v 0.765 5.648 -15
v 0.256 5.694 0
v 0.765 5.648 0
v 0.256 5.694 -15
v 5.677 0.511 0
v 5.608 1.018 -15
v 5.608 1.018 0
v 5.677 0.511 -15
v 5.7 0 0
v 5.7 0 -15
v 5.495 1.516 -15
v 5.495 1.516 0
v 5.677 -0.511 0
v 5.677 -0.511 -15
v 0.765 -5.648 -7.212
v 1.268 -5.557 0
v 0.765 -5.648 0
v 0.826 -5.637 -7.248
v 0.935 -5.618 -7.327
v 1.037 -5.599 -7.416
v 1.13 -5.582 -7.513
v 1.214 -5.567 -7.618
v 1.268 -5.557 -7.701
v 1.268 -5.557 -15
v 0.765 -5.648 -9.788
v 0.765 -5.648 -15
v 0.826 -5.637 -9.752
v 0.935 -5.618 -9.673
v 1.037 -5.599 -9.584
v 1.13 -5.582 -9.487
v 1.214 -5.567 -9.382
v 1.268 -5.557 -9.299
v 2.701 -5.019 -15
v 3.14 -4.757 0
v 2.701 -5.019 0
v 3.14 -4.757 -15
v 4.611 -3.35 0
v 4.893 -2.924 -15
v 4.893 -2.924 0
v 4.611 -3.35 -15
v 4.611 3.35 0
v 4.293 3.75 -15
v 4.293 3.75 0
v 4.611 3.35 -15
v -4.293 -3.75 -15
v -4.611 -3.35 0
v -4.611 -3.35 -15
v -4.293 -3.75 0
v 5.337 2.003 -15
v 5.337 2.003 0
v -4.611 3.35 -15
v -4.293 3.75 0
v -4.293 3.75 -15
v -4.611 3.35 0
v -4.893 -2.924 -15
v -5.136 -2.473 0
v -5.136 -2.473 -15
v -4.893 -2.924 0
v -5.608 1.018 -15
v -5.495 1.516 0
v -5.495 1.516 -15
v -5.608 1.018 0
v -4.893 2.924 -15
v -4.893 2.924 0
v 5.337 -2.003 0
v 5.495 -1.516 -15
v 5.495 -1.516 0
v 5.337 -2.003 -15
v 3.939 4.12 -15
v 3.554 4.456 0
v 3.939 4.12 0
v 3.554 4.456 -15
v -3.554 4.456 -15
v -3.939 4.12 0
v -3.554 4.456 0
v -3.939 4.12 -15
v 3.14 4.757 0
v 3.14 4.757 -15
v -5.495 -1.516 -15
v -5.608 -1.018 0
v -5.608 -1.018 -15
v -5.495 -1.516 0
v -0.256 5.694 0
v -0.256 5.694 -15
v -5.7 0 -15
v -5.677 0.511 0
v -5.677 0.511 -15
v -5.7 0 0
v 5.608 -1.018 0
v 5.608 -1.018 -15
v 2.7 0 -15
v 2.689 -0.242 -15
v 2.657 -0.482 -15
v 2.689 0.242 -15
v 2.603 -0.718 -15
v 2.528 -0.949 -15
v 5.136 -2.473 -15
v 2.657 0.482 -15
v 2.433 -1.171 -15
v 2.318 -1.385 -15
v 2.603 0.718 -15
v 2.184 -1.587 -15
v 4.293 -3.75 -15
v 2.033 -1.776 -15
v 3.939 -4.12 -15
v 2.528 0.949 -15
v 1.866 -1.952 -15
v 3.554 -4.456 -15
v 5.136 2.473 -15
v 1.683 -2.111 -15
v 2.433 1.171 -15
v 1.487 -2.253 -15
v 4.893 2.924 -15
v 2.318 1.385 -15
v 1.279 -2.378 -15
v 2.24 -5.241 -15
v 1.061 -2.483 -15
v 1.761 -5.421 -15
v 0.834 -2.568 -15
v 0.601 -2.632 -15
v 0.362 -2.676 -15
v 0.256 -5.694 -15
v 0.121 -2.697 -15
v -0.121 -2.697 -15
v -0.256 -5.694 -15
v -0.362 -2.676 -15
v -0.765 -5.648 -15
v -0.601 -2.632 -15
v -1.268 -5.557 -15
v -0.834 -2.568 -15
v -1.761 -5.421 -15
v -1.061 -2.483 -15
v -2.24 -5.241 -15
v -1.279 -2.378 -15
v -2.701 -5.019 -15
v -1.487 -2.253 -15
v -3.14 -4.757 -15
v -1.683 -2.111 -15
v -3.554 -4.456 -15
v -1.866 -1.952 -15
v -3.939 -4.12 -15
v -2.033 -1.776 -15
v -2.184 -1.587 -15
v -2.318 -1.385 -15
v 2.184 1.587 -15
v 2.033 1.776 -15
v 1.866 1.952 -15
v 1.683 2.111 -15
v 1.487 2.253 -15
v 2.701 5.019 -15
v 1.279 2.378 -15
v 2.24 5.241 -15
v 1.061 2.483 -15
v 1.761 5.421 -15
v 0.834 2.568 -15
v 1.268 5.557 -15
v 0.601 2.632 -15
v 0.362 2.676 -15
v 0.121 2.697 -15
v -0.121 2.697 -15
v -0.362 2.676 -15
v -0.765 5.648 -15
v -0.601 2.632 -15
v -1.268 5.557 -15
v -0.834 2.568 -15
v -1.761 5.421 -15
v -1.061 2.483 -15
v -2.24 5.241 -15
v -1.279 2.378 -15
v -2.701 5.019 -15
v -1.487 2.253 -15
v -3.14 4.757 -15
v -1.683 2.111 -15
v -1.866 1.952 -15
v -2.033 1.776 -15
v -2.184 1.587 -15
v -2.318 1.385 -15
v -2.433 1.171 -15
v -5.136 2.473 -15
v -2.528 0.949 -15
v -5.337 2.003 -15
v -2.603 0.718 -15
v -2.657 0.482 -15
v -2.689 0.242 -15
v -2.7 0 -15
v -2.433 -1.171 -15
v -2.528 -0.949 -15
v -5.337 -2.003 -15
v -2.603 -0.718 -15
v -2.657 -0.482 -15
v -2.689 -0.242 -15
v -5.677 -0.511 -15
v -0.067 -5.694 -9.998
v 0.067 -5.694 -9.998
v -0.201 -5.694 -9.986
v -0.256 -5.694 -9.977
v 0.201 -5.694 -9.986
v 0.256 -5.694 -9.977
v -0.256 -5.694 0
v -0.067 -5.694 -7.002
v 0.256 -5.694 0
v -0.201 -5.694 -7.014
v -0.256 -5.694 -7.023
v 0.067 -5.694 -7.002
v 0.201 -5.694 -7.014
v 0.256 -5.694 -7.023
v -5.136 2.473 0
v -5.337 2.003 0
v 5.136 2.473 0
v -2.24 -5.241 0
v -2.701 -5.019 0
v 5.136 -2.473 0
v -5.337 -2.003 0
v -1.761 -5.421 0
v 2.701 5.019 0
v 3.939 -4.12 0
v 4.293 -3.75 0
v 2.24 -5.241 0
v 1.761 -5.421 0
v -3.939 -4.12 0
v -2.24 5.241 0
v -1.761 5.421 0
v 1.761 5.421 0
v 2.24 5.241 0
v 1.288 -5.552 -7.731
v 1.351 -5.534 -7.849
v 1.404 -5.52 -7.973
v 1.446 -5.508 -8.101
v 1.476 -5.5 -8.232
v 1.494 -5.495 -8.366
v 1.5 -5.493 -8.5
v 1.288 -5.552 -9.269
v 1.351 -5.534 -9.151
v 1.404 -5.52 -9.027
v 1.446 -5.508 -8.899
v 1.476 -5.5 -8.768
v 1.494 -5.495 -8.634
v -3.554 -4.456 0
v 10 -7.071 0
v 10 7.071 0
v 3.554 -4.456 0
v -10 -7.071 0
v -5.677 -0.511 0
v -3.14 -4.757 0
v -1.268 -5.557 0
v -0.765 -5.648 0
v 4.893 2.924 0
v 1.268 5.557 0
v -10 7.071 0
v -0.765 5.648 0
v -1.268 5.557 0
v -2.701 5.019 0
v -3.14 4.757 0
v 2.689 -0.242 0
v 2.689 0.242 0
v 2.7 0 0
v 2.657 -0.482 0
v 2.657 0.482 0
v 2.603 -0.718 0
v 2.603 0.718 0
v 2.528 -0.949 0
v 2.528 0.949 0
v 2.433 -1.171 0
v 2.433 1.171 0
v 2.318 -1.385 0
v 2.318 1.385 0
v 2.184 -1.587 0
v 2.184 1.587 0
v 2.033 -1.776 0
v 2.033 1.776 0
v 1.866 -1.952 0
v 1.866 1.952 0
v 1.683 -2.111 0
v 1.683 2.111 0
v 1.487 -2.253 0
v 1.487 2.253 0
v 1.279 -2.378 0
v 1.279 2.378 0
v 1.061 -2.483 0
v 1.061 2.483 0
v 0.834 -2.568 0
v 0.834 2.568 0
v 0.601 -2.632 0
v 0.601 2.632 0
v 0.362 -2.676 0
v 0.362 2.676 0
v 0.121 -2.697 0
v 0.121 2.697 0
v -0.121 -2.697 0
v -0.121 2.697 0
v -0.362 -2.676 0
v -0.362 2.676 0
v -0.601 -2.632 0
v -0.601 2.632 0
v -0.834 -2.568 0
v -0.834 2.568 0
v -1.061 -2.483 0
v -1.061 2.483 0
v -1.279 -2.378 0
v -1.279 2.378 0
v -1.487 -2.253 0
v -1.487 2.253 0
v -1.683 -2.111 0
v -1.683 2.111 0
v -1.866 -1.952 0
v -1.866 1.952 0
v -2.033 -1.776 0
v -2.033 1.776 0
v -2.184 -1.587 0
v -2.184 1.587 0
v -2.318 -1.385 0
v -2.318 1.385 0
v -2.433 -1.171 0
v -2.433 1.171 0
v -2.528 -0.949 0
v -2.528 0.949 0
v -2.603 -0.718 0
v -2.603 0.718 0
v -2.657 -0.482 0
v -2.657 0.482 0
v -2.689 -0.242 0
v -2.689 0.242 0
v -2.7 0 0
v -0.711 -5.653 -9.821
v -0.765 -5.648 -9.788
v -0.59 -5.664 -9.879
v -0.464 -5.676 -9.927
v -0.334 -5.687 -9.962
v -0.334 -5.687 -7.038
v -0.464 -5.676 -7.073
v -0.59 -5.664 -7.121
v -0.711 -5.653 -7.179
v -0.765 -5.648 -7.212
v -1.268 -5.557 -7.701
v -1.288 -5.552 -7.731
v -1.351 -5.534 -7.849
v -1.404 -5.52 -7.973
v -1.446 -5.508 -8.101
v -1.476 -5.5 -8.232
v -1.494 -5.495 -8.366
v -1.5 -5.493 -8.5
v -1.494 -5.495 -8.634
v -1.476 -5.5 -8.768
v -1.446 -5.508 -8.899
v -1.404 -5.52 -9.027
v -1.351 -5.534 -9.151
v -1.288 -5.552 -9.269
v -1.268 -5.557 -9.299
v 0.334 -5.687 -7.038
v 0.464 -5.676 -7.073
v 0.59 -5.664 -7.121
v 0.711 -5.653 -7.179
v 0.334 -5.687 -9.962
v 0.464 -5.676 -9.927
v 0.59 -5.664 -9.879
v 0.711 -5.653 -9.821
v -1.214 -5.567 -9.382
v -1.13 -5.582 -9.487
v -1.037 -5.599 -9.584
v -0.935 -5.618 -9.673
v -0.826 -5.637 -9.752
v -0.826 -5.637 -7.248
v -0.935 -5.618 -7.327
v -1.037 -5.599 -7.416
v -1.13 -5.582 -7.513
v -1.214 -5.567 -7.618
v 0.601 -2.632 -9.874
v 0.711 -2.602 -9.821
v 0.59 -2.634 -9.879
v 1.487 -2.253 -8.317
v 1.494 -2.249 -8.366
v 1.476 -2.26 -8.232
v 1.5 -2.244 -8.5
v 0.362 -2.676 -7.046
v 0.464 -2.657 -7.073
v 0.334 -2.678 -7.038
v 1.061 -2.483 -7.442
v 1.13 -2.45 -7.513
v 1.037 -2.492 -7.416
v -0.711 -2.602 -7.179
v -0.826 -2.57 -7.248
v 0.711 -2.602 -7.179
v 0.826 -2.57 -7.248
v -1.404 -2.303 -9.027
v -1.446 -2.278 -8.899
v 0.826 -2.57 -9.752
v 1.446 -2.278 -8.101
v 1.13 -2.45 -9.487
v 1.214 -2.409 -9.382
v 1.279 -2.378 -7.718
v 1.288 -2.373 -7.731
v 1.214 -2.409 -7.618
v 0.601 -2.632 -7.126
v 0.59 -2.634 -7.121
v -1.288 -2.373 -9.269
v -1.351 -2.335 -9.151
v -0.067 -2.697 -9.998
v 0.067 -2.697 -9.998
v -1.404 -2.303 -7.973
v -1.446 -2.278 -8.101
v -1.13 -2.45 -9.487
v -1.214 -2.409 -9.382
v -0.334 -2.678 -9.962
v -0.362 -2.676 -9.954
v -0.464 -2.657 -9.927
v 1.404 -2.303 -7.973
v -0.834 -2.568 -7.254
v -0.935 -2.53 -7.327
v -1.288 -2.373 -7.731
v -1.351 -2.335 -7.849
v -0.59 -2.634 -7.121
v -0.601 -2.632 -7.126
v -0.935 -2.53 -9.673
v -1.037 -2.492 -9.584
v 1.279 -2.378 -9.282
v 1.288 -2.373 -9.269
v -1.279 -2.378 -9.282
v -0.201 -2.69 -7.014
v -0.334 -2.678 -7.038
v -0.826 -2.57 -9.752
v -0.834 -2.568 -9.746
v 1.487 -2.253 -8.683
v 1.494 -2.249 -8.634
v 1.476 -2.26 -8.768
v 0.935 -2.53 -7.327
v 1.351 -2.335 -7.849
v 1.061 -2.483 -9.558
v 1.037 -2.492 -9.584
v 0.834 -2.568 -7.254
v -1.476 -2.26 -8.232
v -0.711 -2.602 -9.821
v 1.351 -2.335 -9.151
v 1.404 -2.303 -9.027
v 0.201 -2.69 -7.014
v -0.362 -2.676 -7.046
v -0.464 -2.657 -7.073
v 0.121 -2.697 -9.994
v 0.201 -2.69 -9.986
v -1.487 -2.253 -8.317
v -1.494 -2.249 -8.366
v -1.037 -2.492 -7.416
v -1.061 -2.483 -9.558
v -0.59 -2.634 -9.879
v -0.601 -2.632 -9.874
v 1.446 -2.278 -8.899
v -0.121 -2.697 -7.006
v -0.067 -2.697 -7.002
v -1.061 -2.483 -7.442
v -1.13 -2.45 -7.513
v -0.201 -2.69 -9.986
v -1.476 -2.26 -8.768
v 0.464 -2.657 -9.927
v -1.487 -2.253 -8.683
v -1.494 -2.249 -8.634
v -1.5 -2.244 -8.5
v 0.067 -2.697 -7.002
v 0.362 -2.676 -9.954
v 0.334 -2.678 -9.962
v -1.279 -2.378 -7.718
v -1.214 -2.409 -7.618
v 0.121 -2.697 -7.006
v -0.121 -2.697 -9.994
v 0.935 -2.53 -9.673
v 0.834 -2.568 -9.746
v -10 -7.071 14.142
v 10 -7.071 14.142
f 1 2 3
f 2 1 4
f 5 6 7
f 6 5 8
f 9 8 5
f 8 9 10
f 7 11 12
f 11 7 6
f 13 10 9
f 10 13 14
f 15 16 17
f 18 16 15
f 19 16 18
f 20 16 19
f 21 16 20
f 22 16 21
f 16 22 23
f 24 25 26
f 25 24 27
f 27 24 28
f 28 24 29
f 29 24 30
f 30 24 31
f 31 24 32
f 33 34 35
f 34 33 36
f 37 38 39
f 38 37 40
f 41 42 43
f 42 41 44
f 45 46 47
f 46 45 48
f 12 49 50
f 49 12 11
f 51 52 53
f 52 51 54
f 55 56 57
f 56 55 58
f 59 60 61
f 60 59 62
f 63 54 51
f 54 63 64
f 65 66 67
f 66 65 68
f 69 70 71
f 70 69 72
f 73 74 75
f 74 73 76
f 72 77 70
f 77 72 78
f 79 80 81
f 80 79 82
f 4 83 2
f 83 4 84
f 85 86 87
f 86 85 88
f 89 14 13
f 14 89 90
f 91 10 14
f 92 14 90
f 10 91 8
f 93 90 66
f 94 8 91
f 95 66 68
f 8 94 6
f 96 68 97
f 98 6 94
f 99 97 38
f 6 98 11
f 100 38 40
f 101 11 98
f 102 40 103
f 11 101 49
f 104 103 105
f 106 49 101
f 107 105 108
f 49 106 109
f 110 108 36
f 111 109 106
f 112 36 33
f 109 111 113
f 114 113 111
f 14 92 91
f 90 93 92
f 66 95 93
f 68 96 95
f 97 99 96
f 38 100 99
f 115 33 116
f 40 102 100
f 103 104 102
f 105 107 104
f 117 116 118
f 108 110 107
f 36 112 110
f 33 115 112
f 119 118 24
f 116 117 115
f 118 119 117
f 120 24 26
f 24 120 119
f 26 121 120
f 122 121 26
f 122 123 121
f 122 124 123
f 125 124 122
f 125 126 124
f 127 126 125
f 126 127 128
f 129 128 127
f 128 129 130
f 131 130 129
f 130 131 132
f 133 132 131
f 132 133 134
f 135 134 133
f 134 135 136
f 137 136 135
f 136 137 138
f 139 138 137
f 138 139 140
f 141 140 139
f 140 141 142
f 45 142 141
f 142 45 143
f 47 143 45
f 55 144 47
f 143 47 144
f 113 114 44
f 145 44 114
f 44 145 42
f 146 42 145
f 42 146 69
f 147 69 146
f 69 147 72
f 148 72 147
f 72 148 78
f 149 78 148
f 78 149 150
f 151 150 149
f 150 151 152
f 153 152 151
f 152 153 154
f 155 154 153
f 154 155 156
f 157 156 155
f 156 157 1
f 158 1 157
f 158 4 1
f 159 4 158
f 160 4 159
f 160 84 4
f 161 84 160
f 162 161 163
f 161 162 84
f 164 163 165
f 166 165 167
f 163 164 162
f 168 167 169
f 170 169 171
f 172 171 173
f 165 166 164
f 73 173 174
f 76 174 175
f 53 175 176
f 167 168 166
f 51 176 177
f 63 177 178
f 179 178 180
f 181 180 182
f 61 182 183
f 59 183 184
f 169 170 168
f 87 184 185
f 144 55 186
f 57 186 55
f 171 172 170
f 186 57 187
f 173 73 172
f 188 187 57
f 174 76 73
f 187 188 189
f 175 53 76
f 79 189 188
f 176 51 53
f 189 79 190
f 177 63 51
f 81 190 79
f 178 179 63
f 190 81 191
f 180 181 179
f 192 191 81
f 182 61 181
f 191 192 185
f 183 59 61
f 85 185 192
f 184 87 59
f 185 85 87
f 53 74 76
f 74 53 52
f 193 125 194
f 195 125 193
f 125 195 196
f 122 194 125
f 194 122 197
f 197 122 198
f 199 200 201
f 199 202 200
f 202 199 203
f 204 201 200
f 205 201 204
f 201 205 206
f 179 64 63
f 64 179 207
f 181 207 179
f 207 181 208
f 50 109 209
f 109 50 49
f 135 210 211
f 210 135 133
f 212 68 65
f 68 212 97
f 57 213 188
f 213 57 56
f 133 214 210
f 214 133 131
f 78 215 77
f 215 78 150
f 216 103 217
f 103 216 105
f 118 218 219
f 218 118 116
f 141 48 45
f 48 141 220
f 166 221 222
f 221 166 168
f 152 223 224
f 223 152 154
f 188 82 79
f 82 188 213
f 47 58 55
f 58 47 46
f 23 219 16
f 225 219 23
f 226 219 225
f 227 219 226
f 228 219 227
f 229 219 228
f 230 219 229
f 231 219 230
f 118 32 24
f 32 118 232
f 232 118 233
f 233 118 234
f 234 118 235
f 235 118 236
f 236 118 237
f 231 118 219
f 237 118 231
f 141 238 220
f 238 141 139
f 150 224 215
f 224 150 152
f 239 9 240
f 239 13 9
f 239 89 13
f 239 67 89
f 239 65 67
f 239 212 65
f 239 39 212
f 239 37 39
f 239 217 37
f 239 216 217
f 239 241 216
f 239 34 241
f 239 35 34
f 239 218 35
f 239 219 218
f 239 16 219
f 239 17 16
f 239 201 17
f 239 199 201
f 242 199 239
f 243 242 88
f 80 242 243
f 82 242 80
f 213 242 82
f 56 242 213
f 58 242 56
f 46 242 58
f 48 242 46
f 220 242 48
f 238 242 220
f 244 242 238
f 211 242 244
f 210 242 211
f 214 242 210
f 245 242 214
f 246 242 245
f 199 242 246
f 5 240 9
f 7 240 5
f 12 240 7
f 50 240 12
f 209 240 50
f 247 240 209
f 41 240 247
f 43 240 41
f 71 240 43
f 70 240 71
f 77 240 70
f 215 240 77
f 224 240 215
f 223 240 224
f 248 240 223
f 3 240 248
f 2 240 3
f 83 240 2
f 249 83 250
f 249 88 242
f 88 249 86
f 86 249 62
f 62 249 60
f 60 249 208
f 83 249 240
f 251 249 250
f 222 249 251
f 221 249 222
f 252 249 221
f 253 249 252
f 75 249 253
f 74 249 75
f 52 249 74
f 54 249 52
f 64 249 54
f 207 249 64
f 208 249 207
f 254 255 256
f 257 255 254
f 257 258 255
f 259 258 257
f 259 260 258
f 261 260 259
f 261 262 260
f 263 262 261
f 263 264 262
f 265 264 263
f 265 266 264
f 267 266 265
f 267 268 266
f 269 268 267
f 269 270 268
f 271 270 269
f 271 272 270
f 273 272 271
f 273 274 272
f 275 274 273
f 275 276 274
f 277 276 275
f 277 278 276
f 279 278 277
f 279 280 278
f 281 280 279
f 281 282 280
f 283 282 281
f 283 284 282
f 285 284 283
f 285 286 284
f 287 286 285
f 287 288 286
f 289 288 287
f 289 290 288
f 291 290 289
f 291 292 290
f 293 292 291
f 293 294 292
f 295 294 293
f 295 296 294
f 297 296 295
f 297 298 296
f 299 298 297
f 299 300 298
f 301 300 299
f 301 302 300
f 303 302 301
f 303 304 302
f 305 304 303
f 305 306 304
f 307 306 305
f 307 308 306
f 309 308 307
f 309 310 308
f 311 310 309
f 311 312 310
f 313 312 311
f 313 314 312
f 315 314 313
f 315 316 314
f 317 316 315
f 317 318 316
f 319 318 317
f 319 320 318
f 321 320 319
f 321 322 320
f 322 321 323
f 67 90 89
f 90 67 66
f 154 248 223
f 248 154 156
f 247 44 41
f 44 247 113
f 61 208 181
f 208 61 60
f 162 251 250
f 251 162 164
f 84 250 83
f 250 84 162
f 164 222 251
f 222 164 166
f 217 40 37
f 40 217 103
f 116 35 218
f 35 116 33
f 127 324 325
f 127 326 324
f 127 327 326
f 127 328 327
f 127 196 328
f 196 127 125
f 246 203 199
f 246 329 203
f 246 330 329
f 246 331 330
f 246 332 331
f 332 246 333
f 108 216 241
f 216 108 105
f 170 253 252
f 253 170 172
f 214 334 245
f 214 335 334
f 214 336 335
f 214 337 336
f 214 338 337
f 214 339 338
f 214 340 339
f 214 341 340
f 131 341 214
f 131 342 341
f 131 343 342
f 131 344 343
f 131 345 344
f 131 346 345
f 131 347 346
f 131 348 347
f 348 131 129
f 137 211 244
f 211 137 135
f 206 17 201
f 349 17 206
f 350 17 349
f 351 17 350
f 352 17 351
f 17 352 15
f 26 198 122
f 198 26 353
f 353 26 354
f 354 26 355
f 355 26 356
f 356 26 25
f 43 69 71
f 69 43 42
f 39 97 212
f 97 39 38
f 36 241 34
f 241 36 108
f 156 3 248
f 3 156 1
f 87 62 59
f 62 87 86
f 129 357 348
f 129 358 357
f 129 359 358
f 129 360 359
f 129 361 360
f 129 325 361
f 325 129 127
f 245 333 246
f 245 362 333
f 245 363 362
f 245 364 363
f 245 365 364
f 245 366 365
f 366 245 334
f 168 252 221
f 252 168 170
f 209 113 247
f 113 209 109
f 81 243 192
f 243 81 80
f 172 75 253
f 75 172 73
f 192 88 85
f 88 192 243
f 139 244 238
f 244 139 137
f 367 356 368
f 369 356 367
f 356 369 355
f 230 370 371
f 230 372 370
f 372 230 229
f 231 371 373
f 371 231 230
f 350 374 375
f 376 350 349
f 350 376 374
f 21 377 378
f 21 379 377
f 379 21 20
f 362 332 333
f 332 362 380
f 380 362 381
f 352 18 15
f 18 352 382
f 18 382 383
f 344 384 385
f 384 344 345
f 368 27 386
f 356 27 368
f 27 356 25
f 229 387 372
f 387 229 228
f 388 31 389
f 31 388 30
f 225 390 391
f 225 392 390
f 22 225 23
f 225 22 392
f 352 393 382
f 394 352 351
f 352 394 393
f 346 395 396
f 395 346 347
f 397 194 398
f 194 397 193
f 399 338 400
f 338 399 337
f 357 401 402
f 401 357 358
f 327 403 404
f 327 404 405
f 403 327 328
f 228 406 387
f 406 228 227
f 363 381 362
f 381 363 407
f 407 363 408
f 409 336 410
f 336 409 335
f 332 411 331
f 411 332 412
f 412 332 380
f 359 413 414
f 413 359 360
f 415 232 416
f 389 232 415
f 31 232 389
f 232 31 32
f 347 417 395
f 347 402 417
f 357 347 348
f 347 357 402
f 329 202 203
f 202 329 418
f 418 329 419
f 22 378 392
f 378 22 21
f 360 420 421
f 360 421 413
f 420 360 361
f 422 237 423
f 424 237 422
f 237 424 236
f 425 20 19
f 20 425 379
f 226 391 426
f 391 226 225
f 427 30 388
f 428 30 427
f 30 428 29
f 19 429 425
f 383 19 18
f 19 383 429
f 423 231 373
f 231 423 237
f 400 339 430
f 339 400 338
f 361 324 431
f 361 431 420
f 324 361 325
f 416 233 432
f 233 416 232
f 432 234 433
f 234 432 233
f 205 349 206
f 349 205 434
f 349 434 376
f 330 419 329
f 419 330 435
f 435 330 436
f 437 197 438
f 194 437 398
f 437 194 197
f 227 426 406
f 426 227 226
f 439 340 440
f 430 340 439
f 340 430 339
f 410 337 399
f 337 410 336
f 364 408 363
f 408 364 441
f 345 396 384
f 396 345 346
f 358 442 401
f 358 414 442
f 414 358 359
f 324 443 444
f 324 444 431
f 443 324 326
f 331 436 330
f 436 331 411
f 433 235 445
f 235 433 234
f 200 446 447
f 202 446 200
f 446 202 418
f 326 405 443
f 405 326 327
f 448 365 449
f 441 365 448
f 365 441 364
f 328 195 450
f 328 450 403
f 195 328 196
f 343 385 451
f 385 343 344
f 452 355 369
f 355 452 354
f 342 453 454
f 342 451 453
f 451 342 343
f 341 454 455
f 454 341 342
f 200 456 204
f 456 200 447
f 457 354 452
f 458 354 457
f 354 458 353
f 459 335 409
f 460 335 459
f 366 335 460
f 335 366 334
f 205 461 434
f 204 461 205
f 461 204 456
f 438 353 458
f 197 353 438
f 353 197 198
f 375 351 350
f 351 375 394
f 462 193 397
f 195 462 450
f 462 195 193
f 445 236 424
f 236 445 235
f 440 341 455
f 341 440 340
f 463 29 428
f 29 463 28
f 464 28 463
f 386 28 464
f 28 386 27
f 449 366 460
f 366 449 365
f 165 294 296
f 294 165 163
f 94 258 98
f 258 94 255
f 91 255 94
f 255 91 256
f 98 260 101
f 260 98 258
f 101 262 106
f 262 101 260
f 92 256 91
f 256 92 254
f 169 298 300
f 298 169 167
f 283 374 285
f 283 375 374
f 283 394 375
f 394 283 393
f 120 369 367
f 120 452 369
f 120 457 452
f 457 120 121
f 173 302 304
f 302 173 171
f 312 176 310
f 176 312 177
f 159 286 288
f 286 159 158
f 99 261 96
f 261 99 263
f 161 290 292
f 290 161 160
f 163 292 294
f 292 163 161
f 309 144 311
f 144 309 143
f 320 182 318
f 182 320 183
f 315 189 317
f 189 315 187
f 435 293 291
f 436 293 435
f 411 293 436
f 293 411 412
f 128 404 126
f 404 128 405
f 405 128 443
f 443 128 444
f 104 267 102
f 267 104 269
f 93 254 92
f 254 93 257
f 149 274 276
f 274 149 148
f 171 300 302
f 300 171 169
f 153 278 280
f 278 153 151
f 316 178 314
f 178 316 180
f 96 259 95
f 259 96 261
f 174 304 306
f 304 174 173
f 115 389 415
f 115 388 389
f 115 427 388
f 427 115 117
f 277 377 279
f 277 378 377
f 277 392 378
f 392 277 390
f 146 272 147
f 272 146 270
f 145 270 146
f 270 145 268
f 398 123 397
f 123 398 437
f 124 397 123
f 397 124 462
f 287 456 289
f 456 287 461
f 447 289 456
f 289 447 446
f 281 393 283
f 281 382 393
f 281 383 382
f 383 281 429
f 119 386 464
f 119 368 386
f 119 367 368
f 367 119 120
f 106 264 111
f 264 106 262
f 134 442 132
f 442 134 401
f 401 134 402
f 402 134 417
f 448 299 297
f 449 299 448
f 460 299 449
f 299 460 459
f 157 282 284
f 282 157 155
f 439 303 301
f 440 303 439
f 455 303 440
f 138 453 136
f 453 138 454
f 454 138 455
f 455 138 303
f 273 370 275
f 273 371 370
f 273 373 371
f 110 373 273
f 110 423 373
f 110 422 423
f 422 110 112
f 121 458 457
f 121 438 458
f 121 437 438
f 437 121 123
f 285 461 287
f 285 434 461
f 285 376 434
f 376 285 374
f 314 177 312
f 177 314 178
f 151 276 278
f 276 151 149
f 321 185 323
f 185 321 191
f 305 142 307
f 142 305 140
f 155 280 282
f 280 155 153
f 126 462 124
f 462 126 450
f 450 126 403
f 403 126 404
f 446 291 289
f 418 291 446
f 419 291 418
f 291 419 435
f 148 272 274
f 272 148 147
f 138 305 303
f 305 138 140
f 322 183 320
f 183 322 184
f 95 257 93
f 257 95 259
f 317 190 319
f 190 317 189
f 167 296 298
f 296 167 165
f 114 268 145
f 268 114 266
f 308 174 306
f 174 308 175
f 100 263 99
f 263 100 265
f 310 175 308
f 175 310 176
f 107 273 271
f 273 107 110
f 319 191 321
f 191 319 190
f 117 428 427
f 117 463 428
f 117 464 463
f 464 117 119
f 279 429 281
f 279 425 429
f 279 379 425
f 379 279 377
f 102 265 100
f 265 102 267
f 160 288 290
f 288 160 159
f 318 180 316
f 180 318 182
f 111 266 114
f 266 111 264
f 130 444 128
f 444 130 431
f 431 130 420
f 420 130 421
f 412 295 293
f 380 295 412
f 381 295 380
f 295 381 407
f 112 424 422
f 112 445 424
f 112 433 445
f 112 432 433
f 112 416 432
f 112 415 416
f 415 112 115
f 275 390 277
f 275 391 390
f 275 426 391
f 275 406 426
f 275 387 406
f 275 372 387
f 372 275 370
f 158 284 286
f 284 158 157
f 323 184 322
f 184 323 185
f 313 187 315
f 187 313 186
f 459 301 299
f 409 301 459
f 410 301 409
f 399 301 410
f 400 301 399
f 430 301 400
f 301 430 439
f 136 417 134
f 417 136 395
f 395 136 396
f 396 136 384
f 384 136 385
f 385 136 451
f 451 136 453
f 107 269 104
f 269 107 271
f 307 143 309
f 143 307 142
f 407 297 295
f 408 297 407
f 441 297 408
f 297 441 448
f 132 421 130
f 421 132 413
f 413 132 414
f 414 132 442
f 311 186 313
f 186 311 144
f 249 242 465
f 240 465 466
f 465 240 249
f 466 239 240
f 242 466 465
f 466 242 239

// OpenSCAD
$fn=70;

diameter = 5;
height=15;
module shaft(tolerance)
{
    
    translate([0,0,-height/2])
    cylinder(h=height,d=diameter+tolerance,center=true);
}


module shaftSupport(tolerance)
{
    diameter_support=6;
    translate([0,0,-height/2])
    cylinder(h=height,d=diameter+diameter_support+tolerance,center=true);
}

module mirrorSupport(l=15)
{
points = [
    [0, 0, 0], // Point 1
    [0, l, 0], // Point 2
    [l, l, 0], // Point 3
    [l, 0, 0], // Point 4
    [0, l/2, sqrt(l*l/2)/sqrt(2) ], // Point 5
    [l, l/2, sqrt(l*l/2)/sqrt(2) ]  // Point 6
];
faces = [
    [3, 2, 1, 0],  // Base, normal upwards
    [0, 1, 4],     // Side triangle, normal outward
    [1, 2, 5, 4],  //  Side face, normal outward
    [2, 3, 5],     // Side triangle, normal outward
    [4, 5, 3, 0],  //  Side face, normal outward
];


translate([0,0,l/2/sqrt(2)])
rotate([135,0,0])
translate([-l/2,-l/2,0])
polyhedron(points, faces);
}

tolerance=0.4;

color("gray")
union()
{
    difference()
    {
        diameter_screw = 3;
        distance_to_border = 5;
        shaftSupport(tolerance);
        translate([0,-5,distance_to_border-height+diameter_screw/2])
        rotate([90,0,0])
        color("green")
        cylinder(h=7,d=diameter_screw,center=true);
        shaft(tolerance);
    }  
    mirrorSupport(20);
}
